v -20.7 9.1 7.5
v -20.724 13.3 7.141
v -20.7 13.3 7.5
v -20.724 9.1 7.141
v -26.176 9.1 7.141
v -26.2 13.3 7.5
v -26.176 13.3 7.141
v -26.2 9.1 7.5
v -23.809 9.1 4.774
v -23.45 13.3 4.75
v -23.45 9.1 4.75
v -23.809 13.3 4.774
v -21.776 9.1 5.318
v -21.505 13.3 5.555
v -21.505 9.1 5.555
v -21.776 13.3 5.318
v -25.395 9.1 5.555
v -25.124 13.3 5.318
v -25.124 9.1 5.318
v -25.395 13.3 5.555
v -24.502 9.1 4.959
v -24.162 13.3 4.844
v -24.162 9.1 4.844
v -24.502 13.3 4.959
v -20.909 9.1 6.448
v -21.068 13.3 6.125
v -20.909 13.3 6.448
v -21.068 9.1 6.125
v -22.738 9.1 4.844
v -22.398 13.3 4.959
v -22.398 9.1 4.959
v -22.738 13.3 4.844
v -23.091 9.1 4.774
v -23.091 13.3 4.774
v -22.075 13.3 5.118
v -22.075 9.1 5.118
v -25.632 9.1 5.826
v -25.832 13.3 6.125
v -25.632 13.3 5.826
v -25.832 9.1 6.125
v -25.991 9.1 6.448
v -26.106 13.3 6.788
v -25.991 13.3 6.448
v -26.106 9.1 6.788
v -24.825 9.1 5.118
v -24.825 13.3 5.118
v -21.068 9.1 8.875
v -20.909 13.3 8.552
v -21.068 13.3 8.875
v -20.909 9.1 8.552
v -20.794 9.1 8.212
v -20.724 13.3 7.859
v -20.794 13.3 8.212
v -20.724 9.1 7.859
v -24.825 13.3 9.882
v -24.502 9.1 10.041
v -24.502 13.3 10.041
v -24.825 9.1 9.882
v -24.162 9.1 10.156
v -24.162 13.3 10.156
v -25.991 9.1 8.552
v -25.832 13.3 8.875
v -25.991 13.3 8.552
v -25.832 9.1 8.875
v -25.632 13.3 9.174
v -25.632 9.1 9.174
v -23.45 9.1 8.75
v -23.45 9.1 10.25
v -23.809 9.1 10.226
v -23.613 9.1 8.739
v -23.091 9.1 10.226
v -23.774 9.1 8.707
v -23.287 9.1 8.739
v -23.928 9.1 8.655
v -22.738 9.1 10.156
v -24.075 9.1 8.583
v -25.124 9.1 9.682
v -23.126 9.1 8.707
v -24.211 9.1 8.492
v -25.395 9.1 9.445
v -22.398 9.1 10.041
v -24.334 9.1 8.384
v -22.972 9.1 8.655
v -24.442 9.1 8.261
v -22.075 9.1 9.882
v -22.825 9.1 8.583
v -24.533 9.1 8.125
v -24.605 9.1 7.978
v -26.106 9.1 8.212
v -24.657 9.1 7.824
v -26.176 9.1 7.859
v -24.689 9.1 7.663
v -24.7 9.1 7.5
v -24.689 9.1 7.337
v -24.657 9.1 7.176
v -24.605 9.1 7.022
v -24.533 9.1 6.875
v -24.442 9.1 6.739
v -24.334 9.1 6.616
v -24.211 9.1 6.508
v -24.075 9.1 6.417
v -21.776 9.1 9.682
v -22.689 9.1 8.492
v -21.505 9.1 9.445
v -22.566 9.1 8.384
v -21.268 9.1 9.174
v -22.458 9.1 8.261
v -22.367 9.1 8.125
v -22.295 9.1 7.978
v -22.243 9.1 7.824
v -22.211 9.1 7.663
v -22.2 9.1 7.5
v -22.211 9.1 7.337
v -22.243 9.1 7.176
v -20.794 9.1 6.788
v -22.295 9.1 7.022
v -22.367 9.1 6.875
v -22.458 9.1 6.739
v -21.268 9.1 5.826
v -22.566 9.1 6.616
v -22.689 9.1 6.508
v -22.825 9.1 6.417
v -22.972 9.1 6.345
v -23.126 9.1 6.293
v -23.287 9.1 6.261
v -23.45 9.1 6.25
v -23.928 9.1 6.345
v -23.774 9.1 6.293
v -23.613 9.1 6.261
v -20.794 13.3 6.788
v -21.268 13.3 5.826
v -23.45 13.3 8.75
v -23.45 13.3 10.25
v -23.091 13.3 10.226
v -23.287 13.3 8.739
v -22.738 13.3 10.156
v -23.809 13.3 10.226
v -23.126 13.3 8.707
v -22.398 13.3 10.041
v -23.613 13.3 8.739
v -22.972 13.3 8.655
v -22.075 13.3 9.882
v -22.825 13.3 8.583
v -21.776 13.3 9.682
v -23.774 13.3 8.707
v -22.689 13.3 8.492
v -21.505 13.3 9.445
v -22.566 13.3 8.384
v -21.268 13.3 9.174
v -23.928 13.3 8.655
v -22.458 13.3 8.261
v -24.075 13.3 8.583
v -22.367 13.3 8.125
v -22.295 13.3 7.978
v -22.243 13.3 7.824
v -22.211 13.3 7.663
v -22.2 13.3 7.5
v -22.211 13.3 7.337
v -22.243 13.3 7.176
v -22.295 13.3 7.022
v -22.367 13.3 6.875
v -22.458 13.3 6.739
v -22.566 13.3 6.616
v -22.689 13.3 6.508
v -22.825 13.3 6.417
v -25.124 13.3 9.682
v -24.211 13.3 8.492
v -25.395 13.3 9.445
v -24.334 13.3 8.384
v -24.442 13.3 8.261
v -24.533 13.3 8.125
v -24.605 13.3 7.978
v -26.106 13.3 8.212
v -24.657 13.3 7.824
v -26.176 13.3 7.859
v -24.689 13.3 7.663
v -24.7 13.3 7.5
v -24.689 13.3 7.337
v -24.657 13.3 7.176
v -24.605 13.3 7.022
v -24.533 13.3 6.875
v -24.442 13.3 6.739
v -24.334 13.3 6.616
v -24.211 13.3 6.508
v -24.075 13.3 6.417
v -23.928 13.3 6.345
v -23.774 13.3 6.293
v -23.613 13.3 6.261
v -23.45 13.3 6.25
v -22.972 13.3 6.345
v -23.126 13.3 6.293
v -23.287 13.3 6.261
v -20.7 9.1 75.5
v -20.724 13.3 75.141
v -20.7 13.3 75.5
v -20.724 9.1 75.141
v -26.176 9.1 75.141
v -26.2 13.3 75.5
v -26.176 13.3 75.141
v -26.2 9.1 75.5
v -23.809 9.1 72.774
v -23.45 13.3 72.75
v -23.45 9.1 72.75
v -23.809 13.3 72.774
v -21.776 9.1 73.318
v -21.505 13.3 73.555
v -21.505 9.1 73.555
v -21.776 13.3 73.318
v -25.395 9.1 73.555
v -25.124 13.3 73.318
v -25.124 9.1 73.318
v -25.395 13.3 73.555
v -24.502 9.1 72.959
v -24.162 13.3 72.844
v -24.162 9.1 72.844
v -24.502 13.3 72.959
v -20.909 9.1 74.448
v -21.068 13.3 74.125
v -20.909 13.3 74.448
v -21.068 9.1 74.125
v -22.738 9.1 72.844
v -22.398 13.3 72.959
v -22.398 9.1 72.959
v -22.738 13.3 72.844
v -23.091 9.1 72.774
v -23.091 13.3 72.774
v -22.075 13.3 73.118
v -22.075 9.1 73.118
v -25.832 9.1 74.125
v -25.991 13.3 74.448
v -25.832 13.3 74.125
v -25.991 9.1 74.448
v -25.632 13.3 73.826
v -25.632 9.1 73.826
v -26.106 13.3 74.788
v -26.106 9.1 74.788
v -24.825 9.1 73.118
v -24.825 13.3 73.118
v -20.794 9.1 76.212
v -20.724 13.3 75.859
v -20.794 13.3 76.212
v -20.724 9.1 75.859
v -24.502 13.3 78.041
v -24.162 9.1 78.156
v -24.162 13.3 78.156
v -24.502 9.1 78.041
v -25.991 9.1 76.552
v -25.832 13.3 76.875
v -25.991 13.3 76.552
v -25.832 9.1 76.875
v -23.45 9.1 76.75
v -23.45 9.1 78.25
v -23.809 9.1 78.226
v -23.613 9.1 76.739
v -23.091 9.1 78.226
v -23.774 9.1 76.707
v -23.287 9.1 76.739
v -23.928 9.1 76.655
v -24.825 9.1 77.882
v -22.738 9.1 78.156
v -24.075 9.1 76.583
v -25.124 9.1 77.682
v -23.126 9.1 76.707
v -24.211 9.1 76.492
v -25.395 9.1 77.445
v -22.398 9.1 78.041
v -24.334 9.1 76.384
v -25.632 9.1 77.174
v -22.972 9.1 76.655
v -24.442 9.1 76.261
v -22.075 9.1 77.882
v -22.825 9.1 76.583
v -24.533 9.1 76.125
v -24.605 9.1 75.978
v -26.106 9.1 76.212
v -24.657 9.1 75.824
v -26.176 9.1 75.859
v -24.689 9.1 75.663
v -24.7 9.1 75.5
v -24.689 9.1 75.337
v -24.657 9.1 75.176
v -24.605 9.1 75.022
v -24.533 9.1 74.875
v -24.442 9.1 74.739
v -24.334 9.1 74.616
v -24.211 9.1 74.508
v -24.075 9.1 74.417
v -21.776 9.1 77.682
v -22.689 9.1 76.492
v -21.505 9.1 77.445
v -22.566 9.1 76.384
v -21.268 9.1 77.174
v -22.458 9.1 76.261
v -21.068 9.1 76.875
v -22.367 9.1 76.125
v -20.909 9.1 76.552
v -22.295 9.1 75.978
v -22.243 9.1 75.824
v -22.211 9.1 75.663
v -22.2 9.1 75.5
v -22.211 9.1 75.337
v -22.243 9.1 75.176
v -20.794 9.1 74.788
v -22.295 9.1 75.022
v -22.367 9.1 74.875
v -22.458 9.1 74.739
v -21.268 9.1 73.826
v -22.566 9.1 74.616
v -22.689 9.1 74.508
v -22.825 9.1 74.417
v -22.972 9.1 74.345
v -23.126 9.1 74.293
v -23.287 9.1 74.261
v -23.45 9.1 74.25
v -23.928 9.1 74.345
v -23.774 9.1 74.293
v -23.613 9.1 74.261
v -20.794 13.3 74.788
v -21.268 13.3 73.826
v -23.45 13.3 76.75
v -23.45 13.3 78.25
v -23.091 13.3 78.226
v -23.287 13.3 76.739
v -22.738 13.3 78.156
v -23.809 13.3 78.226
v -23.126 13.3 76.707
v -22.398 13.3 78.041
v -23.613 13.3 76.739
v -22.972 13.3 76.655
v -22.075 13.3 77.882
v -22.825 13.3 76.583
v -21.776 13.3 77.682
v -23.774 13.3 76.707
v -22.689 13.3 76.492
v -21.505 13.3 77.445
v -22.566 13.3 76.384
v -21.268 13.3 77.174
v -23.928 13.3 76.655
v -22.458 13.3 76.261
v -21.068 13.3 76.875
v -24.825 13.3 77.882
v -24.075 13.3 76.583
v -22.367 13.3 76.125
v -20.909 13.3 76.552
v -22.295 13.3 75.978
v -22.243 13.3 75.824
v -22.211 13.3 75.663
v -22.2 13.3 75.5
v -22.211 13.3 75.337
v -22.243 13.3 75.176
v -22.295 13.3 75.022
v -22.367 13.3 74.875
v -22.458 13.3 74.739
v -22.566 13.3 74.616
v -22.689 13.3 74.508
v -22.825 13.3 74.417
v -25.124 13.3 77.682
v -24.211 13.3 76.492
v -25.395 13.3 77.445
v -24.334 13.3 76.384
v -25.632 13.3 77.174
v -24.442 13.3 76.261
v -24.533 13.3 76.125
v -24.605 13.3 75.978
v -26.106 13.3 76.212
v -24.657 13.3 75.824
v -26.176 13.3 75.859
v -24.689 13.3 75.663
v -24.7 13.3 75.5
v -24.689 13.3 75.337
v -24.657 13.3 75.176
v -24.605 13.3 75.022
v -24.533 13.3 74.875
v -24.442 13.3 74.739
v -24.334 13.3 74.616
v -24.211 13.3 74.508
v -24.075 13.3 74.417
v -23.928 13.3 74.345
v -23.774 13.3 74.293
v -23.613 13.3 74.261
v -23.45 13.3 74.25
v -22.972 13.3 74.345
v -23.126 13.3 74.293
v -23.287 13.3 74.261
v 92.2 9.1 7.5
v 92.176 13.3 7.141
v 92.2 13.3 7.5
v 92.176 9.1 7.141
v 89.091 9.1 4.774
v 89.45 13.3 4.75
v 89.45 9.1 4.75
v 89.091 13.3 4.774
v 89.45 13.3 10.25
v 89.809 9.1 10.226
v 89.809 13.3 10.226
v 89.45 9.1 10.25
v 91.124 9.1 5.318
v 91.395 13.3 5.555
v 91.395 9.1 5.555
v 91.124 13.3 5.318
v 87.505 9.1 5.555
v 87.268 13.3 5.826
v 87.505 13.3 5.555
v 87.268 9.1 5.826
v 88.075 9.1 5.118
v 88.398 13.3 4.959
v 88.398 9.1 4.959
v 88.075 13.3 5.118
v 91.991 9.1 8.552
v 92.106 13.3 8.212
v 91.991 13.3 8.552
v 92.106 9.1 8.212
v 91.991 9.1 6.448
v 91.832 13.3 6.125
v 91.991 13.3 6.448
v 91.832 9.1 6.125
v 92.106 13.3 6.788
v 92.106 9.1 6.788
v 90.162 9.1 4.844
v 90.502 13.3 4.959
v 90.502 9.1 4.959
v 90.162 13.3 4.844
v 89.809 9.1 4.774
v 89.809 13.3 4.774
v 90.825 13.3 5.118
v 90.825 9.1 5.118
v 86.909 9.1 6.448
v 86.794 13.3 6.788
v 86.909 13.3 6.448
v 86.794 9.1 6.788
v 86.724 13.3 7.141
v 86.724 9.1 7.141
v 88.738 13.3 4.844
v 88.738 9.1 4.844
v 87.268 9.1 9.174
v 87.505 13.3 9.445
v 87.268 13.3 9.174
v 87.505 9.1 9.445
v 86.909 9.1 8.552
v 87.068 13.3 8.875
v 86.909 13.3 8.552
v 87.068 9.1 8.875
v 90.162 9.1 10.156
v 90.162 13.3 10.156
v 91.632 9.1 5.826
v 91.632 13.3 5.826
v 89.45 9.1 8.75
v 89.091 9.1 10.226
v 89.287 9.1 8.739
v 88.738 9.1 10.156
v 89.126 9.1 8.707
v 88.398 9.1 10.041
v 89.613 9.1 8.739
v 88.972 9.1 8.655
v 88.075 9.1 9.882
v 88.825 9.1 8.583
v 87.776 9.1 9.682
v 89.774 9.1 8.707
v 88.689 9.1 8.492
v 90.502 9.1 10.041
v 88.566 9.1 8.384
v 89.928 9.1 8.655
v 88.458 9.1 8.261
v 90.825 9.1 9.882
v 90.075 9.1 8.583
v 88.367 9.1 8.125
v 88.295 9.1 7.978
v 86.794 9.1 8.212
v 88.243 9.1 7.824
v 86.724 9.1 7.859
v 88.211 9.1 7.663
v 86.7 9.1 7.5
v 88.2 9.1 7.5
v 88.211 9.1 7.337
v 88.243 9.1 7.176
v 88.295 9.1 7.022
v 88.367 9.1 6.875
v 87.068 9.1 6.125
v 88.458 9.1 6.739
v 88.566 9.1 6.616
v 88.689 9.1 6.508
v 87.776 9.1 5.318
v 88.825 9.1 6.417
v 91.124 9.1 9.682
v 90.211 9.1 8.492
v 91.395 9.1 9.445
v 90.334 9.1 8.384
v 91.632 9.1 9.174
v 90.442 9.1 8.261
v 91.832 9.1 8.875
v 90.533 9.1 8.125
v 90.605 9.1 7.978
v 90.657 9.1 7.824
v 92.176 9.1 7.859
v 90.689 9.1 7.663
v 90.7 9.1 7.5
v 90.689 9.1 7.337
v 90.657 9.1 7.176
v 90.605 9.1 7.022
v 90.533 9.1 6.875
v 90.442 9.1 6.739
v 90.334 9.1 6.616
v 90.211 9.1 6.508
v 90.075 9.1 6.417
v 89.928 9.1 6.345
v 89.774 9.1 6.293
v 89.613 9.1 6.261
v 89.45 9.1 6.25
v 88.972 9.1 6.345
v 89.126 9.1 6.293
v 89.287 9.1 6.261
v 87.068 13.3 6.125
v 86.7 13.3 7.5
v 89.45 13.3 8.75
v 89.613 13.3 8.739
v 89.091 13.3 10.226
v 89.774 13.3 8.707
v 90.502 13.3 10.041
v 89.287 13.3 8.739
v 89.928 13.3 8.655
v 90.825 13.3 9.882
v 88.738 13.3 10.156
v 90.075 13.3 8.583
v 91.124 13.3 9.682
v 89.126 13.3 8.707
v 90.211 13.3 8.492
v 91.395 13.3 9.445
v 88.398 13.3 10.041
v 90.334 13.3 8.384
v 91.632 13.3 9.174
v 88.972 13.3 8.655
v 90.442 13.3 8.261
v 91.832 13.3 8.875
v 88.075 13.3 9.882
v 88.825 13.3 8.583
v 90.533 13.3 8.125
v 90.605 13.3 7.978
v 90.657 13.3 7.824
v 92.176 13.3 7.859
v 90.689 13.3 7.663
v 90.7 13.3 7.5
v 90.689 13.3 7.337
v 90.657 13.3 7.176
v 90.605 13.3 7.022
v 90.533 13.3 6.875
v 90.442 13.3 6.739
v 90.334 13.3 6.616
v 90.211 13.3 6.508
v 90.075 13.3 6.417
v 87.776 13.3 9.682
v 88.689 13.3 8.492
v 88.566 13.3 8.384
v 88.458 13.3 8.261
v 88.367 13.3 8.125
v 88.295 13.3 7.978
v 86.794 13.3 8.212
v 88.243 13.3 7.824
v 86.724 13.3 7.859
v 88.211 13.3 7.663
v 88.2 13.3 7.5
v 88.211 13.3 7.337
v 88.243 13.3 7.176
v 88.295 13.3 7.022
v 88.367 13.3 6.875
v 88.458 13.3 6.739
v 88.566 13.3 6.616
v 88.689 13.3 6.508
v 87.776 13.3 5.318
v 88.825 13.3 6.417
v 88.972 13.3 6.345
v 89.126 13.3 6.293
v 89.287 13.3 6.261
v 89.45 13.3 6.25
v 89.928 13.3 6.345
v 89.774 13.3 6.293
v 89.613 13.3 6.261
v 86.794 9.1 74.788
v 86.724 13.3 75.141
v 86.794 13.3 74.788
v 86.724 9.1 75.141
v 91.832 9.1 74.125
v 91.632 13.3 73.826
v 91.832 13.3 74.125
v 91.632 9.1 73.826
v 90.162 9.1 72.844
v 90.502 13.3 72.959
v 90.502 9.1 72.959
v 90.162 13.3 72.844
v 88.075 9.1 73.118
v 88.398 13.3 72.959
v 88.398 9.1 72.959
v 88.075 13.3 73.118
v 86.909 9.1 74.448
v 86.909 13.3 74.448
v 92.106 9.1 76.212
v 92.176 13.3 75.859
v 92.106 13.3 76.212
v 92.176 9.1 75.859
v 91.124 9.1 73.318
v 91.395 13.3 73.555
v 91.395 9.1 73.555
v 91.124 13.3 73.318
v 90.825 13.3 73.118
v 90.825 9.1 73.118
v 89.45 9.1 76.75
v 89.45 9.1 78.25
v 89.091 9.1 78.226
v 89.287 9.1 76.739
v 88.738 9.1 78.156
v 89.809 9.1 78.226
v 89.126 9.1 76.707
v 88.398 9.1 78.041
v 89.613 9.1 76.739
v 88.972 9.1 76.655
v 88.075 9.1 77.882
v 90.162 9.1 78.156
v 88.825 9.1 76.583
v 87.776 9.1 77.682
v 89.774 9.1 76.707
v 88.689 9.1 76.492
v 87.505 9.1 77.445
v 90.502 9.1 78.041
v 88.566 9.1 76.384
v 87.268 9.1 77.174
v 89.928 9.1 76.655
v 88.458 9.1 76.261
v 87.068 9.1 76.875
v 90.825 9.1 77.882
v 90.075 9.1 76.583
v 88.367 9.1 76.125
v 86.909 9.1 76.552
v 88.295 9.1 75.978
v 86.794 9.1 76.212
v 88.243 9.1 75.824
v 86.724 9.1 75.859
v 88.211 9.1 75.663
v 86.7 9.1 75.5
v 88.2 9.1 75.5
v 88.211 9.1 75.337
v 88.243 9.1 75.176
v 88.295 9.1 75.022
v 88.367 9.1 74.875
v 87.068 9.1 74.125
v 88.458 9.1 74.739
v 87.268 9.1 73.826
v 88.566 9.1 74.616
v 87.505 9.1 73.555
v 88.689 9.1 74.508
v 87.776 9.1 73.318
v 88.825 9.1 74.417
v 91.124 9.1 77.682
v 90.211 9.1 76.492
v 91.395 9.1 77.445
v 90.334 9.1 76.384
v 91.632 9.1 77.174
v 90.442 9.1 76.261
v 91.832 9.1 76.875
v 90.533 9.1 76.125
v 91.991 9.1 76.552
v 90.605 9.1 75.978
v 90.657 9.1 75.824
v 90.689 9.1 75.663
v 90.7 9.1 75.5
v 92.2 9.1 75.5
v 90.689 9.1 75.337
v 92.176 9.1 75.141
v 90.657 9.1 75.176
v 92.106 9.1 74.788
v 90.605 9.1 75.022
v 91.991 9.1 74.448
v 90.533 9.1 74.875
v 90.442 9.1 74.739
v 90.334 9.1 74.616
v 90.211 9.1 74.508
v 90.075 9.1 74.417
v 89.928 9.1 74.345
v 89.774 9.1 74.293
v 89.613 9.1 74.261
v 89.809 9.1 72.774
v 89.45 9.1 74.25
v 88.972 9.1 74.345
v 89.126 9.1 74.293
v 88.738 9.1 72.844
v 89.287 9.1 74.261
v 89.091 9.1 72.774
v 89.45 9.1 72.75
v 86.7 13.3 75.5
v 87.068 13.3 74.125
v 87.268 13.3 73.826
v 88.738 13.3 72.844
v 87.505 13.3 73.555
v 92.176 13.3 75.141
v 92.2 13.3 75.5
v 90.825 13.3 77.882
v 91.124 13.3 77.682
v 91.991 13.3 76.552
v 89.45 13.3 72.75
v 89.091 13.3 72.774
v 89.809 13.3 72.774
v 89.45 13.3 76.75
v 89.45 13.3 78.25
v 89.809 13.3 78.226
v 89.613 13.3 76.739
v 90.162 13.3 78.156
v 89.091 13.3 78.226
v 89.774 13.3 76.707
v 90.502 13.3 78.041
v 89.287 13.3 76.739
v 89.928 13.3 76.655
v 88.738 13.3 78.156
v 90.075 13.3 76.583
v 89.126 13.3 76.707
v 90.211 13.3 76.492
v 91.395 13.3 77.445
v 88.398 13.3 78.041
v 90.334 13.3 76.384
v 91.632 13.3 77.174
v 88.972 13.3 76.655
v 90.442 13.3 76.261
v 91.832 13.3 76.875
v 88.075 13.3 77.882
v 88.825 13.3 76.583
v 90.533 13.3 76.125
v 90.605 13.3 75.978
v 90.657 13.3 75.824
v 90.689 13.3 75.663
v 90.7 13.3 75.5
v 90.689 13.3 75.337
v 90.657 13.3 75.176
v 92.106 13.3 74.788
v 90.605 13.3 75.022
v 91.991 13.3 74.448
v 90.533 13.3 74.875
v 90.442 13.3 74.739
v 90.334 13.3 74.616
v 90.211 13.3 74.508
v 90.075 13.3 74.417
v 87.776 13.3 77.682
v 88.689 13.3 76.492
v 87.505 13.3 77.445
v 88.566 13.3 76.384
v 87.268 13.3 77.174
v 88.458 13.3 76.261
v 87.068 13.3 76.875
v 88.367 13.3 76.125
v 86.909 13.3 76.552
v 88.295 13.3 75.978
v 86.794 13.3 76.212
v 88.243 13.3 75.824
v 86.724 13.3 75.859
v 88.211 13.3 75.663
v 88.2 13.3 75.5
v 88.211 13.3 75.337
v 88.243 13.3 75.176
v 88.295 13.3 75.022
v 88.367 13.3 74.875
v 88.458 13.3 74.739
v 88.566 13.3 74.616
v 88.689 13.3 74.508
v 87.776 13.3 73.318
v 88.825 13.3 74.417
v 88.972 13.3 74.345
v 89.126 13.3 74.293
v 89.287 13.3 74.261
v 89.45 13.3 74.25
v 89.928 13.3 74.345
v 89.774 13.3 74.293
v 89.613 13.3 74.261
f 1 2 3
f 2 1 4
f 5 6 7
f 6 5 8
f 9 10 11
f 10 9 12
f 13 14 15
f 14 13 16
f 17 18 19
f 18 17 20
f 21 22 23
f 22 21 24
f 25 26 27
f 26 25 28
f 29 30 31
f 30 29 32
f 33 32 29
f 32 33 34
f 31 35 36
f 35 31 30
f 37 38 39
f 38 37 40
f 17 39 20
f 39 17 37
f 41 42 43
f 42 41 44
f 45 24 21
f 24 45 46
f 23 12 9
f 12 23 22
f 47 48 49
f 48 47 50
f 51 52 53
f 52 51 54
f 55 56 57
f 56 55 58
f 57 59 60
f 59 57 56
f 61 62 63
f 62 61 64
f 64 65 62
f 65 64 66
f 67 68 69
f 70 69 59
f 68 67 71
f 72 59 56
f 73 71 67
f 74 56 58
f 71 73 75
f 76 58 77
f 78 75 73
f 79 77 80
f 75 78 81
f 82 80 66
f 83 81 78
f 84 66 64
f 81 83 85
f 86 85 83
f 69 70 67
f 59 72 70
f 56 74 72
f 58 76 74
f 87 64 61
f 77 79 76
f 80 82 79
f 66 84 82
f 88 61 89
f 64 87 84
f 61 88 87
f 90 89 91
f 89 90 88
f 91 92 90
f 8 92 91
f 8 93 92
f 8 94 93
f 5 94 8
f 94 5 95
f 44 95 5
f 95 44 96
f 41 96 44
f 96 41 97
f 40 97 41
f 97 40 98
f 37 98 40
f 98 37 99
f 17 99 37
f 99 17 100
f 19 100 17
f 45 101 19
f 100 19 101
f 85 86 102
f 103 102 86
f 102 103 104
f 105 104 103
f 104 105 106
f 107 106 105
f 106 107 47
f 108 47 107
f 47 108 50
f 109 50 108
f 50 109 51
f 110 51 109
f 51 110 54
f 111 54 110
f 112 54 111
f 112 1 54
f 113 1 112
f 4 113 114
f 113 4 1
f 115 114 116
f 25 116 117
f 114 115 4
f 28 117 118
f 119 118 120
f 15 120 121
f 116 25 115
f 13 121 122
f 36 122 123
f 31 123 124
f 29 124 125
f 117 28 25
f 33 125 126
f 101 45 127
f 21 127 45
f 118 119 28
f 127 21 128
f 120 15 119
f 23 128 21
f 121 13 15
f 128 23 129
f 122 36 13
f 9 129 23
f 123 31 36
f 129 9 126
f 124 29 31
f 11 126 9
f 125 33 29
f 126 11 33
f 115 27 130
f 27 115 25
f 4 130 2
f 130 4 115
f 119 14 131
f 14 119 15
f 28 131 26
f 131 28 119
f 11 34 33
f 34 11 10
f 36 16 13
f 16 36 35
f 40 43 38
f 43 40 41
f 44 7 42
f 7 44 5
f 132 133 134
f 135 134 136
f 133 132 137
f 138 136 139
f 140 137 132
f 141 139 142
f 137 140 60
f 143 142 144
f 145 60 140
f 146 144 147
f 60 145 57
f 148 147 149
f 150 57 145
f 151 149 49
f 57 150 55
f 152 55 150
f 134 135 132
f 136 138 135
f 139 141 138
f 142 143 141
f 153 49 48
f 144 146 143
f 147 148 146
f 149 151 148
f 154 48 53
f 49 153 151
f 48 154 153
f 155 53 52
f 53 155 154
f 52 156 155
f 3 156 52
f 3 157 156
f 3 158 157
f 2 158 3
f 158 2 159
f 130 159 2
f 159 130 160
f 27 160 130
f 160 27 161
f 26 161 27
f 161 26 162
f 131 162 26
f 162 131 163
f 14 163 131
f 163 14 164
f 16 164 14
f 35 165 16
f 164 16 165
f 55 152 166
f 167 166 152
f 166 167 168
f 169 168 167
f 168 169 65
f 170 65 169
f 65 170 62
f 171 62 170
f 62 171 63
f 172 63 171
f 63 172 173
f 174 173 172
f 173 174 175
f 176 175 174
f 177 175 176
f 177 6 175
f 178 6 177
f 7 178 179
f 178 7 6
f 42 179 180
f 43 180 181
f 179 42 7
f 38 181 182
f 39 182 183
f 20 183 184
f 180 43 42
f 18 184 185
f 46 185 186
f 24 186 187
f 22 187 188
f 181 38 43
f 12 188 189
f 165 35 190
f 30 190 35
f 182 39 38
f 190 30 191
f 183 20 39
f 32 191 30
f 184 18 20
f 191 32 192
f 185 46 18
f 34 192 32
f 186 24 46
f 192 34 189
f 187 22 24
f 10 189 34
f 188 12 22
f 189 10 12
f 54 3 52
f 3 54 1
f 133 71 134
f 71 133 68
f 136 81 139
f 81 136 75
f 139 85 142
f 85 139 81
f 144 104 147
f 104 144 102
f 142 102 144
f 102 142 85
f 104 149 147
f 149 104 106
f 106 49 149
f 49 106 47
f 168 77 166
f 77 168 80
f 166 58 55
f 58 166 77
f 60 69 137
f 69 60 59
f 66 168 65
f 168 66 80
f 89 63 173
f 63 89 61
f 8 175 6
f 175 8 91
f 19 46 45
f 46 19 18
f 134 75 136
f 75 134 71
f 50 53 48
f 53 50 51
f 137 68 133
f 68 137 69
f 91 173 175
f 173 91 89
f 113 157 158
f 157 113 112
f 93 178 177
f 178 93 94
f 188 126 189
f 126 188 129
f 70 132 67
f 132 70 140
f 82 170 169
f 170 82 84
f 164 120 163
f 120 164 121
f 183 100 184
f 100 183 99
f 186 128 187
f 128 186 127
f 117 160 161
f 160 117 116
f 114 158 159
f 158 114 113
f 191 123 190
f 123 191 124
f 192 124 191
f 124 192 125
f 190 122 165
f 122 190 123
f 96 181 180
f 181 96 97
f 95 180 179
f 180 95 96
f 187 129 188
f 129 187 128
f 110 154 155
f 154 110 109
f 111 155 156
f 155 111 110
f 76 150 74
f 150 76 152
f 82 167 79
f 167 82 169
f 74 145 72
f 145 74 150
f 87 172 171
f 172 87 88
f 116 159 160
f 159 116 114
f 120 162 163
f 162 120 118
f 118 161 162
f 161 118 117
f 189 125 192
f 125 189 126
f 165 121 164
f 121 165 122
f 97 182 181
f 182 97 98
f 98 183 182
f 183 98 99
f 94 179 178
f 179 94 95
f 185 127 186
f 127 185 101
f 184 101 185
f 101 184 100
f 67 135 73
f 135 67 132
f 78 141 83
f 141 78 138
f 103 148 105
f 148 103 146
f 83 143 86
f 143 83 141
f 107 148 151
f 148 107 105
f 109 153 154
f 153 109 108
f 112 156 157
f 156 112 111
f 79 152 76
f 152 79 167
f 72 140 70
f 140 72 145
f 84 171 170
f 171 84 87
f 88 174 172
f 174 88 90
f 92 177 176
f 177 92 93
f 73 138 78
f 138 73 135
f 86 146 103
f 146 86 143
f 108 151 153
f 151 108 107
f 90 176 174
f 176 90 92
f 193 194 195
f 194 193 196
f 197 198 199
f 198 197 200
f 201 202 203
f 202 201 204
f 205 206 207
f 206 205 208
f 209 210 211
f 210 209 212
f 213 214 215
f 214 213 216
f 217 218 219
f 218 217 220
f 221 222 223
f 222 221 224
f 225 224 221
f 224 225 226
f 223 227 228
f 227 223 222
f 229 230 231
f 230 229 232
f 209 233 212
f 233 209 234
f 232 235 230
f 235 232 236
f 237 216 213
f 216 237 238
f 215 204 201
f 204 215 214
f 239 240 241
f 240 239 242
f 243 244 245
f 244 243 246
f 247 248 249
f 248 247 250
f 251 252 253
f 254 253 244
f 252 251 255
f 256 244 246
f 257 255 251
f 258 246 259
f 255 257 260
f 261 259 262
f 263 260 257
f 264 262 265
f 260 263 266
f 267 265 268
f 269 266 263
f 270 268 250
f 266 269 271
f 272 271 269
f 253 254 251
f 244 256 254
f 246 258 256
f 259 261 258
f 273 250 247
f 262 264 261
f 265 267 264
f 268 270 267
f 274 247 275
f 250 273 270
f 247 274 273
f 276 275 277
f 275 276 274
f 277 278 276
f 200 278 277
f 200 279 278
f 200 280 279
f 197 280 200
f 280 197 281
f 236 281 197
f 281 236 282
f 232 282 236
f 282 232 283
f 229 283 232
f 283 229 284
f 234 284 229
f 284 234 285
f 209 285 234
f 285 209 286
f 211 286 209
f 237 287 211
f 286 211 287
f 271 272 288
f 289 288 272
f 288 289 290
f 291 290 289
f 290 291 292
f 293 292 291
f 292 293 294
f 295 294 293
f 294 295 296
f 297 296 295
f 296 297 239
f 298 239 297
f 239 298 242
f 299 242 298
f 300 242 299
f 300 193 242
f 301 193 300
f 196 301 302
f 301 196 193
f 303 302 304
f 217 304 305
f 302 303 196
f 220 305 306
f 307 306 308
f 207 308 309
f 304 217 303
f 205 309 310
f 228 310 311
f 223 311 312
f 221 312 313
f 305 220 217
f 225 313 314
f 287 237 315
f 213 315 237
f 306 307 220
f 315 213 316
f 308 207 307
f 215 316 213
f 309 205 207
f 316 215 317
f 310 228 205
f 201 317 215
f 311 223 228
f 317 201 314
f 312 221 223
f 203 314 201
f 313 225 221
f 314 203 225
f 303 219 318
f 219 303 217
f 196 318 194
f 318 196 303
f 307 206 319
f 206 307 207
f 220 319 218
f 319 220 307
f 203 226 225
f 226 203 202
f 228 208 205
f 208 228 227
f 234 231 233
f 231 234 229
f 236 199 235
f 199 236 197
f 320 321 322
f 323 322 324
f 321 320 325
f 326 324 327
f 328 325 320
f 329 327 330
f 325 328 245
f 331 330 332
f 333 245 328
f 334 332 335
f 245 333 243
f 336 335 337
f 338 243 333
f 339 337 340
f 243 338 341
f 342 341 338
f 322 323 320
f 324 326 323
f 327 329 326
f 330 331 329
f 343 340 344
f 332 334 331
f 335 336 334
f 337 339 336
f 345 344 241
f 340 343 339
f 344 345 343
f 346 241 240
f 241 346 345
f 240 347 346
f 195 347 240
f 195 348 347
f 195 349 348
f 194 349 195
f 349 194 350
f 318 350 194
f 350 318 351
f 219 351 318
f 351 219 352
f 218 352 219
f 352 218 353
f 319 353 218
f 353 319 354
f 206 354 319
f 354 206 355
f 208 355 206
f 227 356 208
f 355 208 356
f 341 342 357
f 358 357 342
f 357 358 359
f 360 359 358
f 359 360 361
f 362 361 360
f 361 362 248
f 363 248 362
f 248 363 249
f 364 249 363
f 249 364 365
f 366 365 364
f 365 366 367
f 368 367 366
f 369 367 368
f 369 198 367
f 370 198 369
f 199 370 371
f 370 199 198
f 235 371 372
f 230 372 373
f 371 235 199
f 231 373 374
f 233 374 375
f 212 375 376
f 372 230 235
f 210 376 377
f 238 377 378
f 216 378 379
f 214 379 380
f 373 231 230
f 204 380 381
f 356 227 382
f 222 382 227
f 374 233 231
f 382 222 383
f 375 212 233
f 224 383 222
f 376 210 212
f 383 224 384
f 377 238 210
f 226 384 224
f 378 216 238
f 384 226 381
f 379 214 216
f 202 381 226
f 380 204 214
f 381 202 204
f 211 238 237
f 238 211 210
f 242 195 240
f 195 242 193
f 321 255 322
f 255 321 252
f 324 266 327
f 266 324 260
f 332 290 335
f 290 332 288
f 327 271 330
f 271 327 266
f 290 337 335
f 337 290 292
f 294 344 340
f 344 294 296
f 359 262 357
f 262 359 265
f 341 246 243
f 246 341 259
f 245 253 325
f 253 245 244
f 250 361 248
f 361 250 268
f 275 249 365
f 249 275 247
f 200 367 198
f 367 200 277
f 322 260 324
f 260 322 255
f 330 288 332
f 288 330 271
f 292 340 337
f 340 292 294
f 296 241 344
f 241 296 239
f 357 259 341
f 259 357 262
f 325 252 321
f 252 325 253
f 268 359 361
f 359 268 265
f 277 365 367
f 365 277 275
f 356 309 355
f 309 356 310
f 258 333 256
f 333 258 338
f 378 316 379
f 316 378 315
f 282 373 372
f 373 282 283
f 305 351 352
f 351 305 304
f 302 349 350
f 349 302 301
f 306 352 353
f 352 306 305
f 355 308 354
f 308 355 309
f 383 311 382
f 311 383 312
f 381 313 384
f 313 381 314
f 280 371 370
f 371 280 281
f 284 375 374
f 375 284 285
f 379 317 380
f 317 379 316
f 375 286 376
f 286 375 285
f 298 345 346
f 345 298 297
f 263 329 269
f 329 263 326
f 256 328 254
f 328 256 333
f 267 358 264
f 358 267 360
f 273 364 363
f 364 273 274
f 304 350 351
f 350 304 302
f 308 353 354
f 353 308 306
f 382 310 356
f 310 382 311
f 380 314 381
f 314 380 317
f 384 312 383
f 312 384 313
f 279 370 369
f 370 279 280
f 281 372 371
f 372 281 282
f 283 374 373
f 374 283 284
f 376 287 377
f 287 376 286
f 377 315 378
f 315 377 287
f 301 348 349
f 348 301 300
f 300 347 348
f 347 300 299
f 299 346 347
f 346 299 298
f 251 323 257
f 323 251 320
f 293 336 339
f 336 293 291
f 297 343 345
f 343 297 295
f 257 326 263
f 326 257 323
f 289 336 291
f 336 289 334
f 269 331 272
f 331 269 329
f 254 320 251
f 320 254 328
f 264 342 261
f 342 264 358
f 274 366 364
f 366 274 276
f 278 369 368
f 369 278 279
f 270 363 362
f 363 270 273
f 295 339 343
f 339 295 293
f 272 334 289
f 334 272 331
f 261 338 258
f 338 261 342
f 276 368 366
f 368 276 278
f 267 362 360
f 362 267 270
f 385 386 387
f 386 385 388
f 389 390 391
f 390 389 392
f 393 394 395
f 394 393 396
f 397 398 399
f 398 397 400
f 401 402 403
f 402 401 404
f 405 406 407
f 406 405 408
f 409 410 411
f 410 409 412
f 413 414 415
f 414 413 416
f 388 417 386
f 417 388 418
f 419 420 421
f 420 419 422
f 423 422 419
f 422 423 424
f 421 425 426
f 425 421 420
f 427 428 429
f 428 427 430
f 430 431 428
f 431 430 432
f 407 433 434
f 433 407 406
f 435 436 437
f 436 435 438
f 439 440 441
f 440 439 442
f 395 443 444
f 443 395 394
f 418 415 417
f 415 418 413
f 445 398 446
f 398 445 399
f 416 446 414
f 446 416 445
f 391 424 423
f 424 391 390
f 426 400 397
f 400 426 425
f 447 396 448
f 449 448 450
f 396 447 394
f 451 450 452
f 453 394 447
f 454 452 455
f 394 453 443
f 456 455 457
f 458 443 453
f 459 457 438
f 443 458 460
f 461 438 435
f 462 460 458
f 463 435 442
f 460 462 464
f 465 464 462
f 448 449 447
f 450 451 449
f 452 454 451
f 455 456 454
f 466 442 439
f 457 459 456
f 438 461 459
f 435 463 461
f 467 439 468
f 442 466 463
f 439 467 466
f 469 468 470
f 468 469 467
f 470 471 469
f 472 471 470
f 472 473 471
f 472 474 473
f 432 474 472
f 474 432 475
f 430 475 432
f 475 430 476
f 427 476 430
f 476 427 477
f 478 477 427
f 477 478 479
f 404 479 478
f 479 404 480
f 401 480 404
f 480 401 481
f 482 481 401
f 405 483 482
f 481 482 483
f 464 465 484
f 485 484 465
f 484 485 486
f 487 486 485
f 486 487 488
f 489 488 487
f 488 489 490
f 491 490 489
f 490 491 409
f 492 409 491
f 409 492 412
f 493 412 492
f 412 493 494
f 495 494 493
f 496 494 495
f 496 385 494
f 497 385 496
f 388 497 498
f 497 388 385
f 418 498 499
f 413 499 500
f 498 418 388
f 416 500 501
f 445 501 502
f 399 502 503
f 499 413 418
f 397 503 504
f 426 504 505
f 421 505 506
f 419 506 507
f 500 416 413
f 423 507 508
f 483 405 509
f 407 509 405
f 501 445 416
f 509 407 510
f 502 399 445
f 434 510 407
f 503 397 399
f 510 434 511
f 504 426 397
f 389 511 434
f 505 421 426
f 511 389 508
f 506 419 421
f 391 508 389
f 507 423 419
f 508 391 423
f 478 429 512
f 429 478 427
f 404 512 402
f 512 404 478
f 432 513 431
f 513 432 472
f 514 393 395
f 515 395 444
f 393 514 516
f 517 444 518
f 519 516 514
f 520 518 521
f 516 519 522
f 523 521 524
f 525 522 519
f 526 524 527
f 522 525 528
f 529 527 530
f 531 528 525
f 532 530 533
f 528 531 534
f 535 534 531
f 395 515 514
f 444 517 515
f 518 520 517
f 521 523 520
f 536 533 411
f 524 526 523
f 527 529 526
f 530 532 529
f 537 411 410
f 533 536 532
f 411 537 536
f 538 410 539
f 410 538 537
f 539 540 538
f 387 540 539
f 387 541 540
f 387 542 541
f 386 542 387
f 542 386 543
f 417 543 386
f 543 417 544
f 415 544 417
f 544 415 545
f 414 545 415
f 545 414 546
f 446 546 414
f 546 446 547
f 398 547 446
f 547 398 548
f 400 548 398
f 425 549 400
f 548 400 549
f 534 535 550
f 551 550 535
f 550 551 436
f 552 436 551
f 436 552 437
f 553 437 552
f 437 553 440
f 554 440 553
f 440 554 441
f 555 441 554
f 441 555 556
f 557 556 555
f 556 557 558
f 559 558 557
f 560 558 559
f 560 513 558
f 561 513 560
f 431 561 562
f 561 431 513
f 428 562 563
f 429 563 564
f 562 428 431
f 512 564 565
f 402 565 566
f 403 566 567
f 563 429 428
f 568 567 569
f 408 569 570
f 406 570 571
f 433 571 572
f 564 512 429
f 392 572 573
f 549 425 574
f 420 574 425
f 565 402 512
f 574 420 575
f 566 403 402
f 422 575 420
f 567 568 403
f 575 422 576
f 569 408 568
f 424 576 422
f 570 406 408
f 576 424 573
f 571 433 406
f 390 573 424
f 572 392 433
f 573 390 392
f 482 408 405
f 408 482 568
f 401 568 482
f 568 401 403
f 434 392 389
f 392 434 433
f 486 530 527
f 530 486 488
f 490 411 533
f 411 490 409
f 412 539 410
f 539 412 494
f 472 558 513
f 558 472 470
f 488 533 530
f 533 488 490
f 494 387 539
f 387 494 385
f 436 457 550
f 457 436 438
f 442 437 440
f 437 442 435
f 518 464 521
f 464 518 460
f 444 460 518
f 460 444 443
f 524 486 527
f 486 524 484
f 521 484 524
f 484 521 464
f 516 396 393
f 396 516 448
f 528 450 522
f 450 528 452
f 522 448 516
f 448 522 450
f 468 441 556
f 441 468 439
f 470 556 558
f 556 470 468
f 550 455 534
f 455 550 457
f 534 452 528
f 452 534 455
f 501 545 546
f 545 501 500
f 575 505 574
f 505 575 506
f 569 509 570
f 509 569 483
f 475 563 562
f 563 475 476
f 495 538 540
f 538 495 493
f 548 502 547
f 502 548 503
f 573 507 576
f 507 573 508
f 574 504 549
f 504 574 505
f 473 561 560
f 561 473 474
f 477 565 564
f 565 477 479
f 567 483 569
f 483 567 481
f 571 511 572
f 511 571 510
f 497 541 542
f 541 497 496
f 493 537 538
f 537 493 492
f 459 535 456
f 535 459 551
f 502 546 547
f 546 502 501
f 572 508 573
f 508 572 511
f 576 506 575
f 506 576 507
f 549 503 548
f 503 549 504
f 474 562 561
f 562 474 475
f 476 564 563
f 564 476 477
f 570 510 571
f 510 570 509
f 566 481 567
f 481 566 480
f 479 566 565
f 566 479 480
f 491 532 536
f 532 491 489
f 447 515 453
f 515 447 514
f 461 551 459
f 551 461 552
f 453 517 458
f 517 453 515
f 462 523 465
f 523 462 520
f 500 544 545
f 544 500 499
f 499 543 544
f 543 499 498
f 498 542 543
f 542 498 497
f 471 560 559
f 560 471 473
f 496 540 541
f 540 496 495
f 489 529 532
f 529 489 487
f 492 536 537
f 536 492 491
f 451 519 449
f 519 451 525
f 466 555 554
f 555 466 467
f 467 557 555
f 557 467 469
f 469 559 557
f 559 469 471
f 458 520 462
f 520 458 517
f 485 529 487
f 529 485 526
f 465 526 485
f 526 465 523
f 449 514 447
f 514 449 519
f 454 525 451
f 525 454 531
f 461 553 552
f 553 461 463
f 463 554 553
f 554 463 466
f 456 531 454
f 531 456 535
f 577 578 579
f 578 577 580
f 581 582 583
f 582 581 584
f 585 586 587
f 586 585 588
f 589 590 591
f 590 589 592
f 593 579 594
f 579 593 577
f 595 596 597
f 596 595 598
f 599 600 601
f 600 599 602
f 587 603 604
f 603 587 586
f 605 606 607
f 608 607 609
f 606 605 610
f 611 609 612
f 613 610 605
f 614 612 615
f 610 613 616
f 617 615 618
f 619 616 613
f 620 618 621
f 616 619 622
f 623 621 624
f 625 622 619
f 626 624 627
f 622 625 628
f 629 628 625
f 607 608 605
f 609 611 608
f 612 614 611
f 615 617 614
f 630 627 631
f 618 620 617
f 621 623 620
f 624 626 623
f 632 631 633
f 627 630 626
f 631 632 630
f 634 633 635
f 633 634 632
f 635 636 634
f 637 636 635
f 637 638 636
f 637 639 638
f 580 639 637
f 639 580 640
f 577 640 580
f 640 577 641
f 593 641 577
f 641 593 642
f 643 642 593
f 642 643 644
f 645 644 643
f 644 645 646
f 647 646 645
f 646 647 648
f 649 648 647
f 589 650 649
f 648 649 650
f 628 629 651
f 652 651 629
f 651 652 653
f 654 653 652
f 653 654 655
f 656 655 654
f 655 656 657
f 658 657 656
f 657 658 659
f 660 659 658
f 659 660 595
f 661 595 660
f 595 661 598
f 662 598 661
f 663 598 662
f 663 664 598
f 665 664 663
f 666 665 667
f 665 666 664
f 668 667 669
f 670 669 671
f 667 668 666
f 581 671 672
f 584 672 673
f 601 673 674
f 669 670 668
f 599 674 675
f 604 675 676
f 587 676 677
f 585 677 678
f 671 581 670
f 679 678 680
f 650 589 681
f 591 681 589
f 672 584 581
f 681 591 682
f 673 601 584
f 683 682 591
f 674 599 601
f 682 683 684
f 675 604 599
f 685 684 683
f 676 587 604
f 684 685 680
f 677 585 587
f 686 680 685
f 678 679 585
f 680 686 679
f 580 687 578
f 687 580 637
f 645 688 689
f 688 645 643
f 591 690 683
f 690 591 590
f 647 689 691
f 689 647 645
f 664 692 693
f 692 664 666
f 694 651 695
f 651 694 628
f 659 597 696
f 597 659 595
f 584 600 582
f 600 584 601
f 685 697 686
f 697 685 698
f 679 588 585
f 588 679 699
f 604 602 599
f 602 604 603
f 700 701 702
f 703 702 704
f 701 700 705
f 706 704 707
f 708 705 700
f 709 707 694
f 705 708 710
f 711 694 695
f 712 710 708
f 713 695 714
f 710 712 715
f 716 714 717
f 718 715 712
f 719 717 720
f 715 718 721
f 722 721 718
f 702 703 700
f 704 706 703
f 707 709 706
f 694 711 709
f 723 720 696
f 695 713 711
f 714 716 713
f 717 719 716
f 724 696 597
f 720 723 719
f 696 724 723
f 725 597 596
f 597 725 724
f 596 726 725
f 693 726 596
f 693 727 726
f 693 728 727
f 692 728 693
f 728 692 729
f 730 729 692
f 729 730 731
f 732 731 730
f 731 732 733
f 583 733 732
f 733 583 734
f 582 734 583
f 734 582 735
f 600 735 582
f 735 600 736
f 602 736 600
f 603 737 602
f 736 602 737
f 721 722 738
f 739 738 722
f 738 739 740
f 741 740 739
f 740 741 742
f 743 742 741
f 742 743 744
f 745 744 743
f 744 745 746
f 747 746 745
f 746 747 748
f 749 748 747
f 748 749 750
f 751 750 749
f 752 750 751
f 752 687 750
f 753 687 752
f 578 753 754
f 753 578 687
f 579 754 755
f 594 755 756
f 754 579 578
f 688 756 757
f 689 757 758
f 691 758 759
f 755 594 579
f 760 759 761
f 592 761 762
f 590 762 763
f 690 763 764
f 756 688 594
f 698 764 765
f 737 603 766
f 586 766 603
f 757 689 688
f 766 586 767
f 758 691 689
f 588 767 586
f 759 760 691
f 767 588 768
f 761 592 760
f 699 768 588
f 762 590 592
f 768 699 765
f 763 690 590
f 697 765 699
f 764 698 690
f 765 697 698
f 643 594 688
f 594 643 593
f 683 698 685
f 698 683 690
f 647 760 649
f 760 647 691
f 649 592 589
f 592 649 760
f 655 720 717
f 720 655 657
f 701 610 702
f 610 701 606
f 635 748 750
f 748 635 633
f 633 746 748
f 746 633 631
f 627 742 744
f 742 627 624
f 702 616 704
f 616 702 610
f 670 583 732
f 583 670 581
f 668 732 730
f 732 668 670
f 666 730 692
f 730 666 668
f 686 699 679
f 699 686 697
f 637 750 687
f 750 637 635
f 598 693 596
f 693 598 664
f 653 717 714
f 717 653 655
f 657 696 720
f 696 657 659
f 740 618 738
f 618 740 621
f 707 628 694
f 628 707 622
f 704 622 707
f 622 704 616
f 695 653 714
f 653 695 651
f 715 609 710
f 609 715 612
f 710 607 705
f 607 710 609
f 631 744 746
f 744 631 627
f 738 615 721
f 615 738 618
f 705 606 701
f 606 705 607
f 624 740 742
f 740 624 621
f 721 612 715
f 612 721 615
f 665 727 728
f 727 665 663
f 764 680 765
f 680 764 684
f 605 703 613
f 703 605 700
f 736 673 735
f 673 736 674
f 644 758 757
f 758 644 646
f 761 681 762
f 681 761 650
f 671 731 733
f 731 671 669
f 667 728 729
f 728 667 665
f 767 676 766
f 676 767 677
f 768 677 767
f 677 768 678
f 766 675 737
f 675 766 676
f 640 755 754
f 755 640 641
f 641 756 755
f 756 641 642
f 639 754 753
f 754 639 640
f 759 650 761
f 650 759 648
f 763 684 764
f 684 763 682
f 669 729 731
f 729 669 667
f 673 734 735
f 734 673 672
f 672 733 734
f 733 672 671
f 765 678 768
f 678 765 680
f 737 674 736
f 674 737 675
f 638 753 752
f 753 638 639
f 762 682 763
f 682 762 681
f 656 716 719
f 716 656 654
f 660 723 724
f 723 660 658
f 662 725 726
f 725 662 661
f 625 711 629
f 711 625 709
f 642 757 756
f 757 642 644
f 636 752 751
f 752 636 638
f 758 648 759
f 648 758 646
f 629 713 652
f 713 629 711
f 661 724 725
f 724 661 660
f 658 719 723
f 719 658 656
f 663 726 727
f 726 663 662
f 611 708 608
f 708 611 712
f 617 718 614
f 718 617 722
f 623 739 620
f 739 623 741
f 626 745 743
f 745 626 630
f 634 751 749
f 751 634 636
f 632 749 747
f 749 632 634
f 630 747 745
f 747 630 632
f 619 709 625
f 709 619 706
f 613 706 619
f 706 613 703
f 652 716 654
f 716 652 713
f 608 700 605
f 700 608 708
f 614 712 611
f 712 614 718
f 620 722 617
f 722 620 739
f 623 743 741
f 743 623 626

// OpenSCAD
// file: D:/Projects/assembly-workshop/outputs/Screen_Pi_Hue_SCR5-H_2026-10-30/checks/geometry.scad
// SCR5-G; mm; FRONT view: X right, Z up, Y into rack. Glass/plate front Y=0.
// Measured values: work/screen-5in/Dimensions.md. Physical fit/strength UNKNOWN.
part="plate";
DROP=0.45; // coupon winner can be substituted here; all three pins use this DROP
LIP=0.8; LIP_ON=true;
LIP_EDGES=[true,true,false,false]; // left,right,bottom,top; Brian: side lips only, cosmetic
FRAME_STEP=1.5; // measured glass-edge inset to metal LCD frame, left/right only
SHIM=0; // moves rear frame seat and plate-boss mating face back
$fn=48;
GCX=33; GCZ=41.5; PW=252; PH=88.8; PT=4;
GW=120.7; GH=77.2; CLEAR=0.2; WW=GW+2*CLEAR; WH=GH+2*CLEAR;
SEAT=13.3+SHIM; FT=3;
SO=[56.45,34]; BTN_X=[45.5,35.5,25.5];
PCB_TOP=38; GAP=0.10; LEAF_T=0.8;
HOLE=[3.4,40.3,44.7];
BX=[GCX-68,GCX+68]; BZ=[10,72];
// DSI connector X extent is unmeasured: conservative assumed 8 mm inward from PCB edge.
DSI=[GCX-60.5,9.1,GCZ-38+30,8,5.25,21];
module xz(y,d){translate([0,y+d,0])rotate([90,0,0])linear_extrude(d)children();}
// rr/rack_slots copied from SCR5-F; same exact slot centres, outline shifted -0.05 Z to centre 44.4.
module rr(w,h,r){hull()for(x=[-w/2+r,w/2-r],z=[-h/2+r,h/2-r])translate([x,z])circle(r=r);}
module rack_slots(){for(x=[-118.2625,118.2625],z=[6.323,38.127,50.773,82.577])translate([x,z])hull()for(dx=[-1.5,1.5])translate([dx,0])circle(d=7);}
module cyl_y(x,y,z,d,h){translate([x,y,z])rotate([-90,0,0])cylinder(d=d,h=h);}
module window_cut(){
  xz(-0.02,4.04)translate([GCX,GCZ])square([WW,WH],center=true);
  // 0.3 x 45-degree chamfer, square corners, front only.
  translate([GCX,0.3,GCZ])rotate([90,0,0])
    linear_extrude(height=0.3,scale=[(WW+0.6)/WW,(WH+0.6)/WH])square([WW,WH],center=true);
}
module lips(){
  // Cosmetic side ledges only; rear frame/standoffs set depth and retain the screen.
  if(LIP_ON)for(i=[0:3])if(LIP_EDGES[i]){
    if(i<2)translate([GCX+(i==0?-WW/2:WW/2-LIP),2.5,GCZ-GH/2+4])cube([LIP,0.8,GH-8]);
    else translate([GCX-GW/2+4,2.5,GCZ+(i==2?-WH/2:WH/2-LIP)])cube([GW-8,0.8,LIP]);
  }
}
// Leaf/nub/bump geometry copied from SCR5-WP-A, translated to this glass centre.
module leaves(){for(x=BTN_X)translate([GCX+x-1.5,0,GCZ]){
  translate([0,0,PCB_TOP+GAP+0.9+0.1])cube([3,11.8,LEAF_T]);
  translate([0,10.2,PCB_TOP+GAP])cube([3,1.4,1.0+LEAF_T/2]);
  translate([0,10.4,PCB_TOP+GAP+1.0+LEAF_T])cube([3,1.0,0.9]);
}}
module plate(){difference(){union(){
  difference(){xz(0,PT)translate([0,PH/2])rr(PW,PH,2.5);window_cut();}
  for(x=BX,z=BZ)cyl_y(x,3.9,z,8,SEAT-3.9);
  leaves(); lips();
 }
 xz(-0.02,4.04)rack_slots();
 for(x=BTN_X)translate([GCX+x-HOLE[0]/2,-0.02,GCZ+HOLE[1]])cube([HOLE[0],SEAT+FT+0.04,HOLE[2]-HOLE[1]]);
 // Printed-in screw pilots (no heat-set OD assumption): nominal M2.5, fit UNKNOWN.
 for(x=BX,z=BZ)cyl_y(x,SEAT-6,z,2.1,6.02);
 // Rear engraving, 0.5 deep, left field.
 xz(3.5,0.52)translate([-75,40])mirror([1,0])text("SCR5-G",size=6,halign="center",font="Liberation Sans:style=Bold");
}}
module frame_blank(){
  // C-shaped perimeter; no material across the board centre / touch FPC.
  xz(SEAT,FT)translate([GCX,GCZ])difference(){square([132,76],center=true);square([116,60],center=true);}
  for(sx=[-1,1],sz=[-1,1])cyl_y(GCX+sx*SO[0],SEAT,GCZ+sz*SO[1],9,FT);
  for(x=BX,z=BZ)hull(){cyl_y(x,SEAT,z,8,FT);cyl_y(GCX+(x<GCX?-62:62),SEAT,z,8,FT);}
}
module dsi_keepout(){translate([DSI[0]-3,DSI[1]-3,DSI[2]-3])cube([DSI[3]+6,DSI[4]+6,DSI[5]+6]);}
module ribbon_route(){
  // Open left/up corridor 18 mm wide; extends past top of plate.
  translate([GCX-84,6.1,GCZ-11])cube([18,24,65]);
  translate([GCX-84,6.1,GCZ-11])cube([32,24,27]);
}
module frame(){difference(){frame_blank();dsi_keepout();ribbon_route();
 for(sx=[-1,1],sz=[-1,1])cyl_y(GCX+sx*SO[0],SEAT-0.02,GCZ+sz*SO[1],2.8,FT+0.04);
 for(x=BX,z=BZ)cyl_y(x,SEAT-0.02,z,2.8,FT+0.04);
}}
// Pin polygon/cap/notch/dot design copied unchanged from SCR5-WP-A.
module pin(d,dots){s=2*d+0.5;difference(){union(){
 translate([-1.5,0,0])rotate([90,0,90])linear_extrude(3)polygon([
 [-s-0.02,40.5],[10.2,40.5],[10.2,41.0],[11.5,41.0],[11.5+2*d,41.0-d],[15,41.0-d],[15,44.5],[-s-0.02,44.5]]);
 translate([-2.5,-s-1.5,39.6])cube([5,1.5,5.8]);
 }for(i=[0:dots-1])translate([(i-(dots-1)/2)*1.4,-s-1.5-0.01,43.5])rotate([-90,0,0])cylinder(d=0.9,h=0.4);}}
module placed_pin(i){translate([GCX+BTN_X[i],0,GCZ])pin(DROP,i+1);}
// Measured layers: cover glass 0.9 + second glass 1.6, metal frame 3.0,
// open gap 2.0, PCB 1.6. Metal frame inset ~1.5 at LEFT/RIGHT only.
// PCB centred under glass and full metal-frame top/bottom extent remain UNKNOWN.
module glass(){translate([GCX-GW/2,0,GCZ-GH/2])cube([GW,2.5,GH]);}
module lcd(){
  translate([GCX-GW/2+FRAME_STEP,2.5,GCZ-GH/2])cube([GW-2*FRAME_STEP,3.0,GH]);
}
module pcb(){translate([GCX-60.5,7.5,GCZ-38])cube([121,1.6,76]);}
module standoffs(){for(sx=[-1,1],sz=[-1,1])difference(){cyl_y(GCX+sx*SO[0],9.1,GCZ+sz*SO[1],5.5,4.2);cyl_y(GCX+sx*SO[0],9.08,GCZ+sz*SO[1],2.5,4.24);}}
module buttons(){for(x=BTN_X){
 translate([GCX+x-3.5,9.1,GCZ+38-3.4])cube([7,3.6,2.4]);
 translate([GCX+x-1.5,9.1,GCZ+37])cube([3,3.6,1]);
}}
module dsi(){translate([DSI[0],DSI[1],DSI[2]])cube([DSI[3],DSI[4],DSI[5]]);}
module touch(){translate([GCX-10,9.1,GCZ-5])cube([20,2,10]);} // lateral extent unmeasured
module dummy(){glass();lcd();pcb();standoffs();buttons();dsi();touch();}
module assembly(){color("gray")plate();color("orange")frame();for(i=[0:2])color("cyan")placed_pin(i);color([0.2,0.3,0.4,0.4])dummy();}
// main file
include <D:/Projects/assembly-workshop/outputs/Screen_Pi_Hue_SCR5-H_2026-10-30/checks/geometry.scad>
standoffs();
